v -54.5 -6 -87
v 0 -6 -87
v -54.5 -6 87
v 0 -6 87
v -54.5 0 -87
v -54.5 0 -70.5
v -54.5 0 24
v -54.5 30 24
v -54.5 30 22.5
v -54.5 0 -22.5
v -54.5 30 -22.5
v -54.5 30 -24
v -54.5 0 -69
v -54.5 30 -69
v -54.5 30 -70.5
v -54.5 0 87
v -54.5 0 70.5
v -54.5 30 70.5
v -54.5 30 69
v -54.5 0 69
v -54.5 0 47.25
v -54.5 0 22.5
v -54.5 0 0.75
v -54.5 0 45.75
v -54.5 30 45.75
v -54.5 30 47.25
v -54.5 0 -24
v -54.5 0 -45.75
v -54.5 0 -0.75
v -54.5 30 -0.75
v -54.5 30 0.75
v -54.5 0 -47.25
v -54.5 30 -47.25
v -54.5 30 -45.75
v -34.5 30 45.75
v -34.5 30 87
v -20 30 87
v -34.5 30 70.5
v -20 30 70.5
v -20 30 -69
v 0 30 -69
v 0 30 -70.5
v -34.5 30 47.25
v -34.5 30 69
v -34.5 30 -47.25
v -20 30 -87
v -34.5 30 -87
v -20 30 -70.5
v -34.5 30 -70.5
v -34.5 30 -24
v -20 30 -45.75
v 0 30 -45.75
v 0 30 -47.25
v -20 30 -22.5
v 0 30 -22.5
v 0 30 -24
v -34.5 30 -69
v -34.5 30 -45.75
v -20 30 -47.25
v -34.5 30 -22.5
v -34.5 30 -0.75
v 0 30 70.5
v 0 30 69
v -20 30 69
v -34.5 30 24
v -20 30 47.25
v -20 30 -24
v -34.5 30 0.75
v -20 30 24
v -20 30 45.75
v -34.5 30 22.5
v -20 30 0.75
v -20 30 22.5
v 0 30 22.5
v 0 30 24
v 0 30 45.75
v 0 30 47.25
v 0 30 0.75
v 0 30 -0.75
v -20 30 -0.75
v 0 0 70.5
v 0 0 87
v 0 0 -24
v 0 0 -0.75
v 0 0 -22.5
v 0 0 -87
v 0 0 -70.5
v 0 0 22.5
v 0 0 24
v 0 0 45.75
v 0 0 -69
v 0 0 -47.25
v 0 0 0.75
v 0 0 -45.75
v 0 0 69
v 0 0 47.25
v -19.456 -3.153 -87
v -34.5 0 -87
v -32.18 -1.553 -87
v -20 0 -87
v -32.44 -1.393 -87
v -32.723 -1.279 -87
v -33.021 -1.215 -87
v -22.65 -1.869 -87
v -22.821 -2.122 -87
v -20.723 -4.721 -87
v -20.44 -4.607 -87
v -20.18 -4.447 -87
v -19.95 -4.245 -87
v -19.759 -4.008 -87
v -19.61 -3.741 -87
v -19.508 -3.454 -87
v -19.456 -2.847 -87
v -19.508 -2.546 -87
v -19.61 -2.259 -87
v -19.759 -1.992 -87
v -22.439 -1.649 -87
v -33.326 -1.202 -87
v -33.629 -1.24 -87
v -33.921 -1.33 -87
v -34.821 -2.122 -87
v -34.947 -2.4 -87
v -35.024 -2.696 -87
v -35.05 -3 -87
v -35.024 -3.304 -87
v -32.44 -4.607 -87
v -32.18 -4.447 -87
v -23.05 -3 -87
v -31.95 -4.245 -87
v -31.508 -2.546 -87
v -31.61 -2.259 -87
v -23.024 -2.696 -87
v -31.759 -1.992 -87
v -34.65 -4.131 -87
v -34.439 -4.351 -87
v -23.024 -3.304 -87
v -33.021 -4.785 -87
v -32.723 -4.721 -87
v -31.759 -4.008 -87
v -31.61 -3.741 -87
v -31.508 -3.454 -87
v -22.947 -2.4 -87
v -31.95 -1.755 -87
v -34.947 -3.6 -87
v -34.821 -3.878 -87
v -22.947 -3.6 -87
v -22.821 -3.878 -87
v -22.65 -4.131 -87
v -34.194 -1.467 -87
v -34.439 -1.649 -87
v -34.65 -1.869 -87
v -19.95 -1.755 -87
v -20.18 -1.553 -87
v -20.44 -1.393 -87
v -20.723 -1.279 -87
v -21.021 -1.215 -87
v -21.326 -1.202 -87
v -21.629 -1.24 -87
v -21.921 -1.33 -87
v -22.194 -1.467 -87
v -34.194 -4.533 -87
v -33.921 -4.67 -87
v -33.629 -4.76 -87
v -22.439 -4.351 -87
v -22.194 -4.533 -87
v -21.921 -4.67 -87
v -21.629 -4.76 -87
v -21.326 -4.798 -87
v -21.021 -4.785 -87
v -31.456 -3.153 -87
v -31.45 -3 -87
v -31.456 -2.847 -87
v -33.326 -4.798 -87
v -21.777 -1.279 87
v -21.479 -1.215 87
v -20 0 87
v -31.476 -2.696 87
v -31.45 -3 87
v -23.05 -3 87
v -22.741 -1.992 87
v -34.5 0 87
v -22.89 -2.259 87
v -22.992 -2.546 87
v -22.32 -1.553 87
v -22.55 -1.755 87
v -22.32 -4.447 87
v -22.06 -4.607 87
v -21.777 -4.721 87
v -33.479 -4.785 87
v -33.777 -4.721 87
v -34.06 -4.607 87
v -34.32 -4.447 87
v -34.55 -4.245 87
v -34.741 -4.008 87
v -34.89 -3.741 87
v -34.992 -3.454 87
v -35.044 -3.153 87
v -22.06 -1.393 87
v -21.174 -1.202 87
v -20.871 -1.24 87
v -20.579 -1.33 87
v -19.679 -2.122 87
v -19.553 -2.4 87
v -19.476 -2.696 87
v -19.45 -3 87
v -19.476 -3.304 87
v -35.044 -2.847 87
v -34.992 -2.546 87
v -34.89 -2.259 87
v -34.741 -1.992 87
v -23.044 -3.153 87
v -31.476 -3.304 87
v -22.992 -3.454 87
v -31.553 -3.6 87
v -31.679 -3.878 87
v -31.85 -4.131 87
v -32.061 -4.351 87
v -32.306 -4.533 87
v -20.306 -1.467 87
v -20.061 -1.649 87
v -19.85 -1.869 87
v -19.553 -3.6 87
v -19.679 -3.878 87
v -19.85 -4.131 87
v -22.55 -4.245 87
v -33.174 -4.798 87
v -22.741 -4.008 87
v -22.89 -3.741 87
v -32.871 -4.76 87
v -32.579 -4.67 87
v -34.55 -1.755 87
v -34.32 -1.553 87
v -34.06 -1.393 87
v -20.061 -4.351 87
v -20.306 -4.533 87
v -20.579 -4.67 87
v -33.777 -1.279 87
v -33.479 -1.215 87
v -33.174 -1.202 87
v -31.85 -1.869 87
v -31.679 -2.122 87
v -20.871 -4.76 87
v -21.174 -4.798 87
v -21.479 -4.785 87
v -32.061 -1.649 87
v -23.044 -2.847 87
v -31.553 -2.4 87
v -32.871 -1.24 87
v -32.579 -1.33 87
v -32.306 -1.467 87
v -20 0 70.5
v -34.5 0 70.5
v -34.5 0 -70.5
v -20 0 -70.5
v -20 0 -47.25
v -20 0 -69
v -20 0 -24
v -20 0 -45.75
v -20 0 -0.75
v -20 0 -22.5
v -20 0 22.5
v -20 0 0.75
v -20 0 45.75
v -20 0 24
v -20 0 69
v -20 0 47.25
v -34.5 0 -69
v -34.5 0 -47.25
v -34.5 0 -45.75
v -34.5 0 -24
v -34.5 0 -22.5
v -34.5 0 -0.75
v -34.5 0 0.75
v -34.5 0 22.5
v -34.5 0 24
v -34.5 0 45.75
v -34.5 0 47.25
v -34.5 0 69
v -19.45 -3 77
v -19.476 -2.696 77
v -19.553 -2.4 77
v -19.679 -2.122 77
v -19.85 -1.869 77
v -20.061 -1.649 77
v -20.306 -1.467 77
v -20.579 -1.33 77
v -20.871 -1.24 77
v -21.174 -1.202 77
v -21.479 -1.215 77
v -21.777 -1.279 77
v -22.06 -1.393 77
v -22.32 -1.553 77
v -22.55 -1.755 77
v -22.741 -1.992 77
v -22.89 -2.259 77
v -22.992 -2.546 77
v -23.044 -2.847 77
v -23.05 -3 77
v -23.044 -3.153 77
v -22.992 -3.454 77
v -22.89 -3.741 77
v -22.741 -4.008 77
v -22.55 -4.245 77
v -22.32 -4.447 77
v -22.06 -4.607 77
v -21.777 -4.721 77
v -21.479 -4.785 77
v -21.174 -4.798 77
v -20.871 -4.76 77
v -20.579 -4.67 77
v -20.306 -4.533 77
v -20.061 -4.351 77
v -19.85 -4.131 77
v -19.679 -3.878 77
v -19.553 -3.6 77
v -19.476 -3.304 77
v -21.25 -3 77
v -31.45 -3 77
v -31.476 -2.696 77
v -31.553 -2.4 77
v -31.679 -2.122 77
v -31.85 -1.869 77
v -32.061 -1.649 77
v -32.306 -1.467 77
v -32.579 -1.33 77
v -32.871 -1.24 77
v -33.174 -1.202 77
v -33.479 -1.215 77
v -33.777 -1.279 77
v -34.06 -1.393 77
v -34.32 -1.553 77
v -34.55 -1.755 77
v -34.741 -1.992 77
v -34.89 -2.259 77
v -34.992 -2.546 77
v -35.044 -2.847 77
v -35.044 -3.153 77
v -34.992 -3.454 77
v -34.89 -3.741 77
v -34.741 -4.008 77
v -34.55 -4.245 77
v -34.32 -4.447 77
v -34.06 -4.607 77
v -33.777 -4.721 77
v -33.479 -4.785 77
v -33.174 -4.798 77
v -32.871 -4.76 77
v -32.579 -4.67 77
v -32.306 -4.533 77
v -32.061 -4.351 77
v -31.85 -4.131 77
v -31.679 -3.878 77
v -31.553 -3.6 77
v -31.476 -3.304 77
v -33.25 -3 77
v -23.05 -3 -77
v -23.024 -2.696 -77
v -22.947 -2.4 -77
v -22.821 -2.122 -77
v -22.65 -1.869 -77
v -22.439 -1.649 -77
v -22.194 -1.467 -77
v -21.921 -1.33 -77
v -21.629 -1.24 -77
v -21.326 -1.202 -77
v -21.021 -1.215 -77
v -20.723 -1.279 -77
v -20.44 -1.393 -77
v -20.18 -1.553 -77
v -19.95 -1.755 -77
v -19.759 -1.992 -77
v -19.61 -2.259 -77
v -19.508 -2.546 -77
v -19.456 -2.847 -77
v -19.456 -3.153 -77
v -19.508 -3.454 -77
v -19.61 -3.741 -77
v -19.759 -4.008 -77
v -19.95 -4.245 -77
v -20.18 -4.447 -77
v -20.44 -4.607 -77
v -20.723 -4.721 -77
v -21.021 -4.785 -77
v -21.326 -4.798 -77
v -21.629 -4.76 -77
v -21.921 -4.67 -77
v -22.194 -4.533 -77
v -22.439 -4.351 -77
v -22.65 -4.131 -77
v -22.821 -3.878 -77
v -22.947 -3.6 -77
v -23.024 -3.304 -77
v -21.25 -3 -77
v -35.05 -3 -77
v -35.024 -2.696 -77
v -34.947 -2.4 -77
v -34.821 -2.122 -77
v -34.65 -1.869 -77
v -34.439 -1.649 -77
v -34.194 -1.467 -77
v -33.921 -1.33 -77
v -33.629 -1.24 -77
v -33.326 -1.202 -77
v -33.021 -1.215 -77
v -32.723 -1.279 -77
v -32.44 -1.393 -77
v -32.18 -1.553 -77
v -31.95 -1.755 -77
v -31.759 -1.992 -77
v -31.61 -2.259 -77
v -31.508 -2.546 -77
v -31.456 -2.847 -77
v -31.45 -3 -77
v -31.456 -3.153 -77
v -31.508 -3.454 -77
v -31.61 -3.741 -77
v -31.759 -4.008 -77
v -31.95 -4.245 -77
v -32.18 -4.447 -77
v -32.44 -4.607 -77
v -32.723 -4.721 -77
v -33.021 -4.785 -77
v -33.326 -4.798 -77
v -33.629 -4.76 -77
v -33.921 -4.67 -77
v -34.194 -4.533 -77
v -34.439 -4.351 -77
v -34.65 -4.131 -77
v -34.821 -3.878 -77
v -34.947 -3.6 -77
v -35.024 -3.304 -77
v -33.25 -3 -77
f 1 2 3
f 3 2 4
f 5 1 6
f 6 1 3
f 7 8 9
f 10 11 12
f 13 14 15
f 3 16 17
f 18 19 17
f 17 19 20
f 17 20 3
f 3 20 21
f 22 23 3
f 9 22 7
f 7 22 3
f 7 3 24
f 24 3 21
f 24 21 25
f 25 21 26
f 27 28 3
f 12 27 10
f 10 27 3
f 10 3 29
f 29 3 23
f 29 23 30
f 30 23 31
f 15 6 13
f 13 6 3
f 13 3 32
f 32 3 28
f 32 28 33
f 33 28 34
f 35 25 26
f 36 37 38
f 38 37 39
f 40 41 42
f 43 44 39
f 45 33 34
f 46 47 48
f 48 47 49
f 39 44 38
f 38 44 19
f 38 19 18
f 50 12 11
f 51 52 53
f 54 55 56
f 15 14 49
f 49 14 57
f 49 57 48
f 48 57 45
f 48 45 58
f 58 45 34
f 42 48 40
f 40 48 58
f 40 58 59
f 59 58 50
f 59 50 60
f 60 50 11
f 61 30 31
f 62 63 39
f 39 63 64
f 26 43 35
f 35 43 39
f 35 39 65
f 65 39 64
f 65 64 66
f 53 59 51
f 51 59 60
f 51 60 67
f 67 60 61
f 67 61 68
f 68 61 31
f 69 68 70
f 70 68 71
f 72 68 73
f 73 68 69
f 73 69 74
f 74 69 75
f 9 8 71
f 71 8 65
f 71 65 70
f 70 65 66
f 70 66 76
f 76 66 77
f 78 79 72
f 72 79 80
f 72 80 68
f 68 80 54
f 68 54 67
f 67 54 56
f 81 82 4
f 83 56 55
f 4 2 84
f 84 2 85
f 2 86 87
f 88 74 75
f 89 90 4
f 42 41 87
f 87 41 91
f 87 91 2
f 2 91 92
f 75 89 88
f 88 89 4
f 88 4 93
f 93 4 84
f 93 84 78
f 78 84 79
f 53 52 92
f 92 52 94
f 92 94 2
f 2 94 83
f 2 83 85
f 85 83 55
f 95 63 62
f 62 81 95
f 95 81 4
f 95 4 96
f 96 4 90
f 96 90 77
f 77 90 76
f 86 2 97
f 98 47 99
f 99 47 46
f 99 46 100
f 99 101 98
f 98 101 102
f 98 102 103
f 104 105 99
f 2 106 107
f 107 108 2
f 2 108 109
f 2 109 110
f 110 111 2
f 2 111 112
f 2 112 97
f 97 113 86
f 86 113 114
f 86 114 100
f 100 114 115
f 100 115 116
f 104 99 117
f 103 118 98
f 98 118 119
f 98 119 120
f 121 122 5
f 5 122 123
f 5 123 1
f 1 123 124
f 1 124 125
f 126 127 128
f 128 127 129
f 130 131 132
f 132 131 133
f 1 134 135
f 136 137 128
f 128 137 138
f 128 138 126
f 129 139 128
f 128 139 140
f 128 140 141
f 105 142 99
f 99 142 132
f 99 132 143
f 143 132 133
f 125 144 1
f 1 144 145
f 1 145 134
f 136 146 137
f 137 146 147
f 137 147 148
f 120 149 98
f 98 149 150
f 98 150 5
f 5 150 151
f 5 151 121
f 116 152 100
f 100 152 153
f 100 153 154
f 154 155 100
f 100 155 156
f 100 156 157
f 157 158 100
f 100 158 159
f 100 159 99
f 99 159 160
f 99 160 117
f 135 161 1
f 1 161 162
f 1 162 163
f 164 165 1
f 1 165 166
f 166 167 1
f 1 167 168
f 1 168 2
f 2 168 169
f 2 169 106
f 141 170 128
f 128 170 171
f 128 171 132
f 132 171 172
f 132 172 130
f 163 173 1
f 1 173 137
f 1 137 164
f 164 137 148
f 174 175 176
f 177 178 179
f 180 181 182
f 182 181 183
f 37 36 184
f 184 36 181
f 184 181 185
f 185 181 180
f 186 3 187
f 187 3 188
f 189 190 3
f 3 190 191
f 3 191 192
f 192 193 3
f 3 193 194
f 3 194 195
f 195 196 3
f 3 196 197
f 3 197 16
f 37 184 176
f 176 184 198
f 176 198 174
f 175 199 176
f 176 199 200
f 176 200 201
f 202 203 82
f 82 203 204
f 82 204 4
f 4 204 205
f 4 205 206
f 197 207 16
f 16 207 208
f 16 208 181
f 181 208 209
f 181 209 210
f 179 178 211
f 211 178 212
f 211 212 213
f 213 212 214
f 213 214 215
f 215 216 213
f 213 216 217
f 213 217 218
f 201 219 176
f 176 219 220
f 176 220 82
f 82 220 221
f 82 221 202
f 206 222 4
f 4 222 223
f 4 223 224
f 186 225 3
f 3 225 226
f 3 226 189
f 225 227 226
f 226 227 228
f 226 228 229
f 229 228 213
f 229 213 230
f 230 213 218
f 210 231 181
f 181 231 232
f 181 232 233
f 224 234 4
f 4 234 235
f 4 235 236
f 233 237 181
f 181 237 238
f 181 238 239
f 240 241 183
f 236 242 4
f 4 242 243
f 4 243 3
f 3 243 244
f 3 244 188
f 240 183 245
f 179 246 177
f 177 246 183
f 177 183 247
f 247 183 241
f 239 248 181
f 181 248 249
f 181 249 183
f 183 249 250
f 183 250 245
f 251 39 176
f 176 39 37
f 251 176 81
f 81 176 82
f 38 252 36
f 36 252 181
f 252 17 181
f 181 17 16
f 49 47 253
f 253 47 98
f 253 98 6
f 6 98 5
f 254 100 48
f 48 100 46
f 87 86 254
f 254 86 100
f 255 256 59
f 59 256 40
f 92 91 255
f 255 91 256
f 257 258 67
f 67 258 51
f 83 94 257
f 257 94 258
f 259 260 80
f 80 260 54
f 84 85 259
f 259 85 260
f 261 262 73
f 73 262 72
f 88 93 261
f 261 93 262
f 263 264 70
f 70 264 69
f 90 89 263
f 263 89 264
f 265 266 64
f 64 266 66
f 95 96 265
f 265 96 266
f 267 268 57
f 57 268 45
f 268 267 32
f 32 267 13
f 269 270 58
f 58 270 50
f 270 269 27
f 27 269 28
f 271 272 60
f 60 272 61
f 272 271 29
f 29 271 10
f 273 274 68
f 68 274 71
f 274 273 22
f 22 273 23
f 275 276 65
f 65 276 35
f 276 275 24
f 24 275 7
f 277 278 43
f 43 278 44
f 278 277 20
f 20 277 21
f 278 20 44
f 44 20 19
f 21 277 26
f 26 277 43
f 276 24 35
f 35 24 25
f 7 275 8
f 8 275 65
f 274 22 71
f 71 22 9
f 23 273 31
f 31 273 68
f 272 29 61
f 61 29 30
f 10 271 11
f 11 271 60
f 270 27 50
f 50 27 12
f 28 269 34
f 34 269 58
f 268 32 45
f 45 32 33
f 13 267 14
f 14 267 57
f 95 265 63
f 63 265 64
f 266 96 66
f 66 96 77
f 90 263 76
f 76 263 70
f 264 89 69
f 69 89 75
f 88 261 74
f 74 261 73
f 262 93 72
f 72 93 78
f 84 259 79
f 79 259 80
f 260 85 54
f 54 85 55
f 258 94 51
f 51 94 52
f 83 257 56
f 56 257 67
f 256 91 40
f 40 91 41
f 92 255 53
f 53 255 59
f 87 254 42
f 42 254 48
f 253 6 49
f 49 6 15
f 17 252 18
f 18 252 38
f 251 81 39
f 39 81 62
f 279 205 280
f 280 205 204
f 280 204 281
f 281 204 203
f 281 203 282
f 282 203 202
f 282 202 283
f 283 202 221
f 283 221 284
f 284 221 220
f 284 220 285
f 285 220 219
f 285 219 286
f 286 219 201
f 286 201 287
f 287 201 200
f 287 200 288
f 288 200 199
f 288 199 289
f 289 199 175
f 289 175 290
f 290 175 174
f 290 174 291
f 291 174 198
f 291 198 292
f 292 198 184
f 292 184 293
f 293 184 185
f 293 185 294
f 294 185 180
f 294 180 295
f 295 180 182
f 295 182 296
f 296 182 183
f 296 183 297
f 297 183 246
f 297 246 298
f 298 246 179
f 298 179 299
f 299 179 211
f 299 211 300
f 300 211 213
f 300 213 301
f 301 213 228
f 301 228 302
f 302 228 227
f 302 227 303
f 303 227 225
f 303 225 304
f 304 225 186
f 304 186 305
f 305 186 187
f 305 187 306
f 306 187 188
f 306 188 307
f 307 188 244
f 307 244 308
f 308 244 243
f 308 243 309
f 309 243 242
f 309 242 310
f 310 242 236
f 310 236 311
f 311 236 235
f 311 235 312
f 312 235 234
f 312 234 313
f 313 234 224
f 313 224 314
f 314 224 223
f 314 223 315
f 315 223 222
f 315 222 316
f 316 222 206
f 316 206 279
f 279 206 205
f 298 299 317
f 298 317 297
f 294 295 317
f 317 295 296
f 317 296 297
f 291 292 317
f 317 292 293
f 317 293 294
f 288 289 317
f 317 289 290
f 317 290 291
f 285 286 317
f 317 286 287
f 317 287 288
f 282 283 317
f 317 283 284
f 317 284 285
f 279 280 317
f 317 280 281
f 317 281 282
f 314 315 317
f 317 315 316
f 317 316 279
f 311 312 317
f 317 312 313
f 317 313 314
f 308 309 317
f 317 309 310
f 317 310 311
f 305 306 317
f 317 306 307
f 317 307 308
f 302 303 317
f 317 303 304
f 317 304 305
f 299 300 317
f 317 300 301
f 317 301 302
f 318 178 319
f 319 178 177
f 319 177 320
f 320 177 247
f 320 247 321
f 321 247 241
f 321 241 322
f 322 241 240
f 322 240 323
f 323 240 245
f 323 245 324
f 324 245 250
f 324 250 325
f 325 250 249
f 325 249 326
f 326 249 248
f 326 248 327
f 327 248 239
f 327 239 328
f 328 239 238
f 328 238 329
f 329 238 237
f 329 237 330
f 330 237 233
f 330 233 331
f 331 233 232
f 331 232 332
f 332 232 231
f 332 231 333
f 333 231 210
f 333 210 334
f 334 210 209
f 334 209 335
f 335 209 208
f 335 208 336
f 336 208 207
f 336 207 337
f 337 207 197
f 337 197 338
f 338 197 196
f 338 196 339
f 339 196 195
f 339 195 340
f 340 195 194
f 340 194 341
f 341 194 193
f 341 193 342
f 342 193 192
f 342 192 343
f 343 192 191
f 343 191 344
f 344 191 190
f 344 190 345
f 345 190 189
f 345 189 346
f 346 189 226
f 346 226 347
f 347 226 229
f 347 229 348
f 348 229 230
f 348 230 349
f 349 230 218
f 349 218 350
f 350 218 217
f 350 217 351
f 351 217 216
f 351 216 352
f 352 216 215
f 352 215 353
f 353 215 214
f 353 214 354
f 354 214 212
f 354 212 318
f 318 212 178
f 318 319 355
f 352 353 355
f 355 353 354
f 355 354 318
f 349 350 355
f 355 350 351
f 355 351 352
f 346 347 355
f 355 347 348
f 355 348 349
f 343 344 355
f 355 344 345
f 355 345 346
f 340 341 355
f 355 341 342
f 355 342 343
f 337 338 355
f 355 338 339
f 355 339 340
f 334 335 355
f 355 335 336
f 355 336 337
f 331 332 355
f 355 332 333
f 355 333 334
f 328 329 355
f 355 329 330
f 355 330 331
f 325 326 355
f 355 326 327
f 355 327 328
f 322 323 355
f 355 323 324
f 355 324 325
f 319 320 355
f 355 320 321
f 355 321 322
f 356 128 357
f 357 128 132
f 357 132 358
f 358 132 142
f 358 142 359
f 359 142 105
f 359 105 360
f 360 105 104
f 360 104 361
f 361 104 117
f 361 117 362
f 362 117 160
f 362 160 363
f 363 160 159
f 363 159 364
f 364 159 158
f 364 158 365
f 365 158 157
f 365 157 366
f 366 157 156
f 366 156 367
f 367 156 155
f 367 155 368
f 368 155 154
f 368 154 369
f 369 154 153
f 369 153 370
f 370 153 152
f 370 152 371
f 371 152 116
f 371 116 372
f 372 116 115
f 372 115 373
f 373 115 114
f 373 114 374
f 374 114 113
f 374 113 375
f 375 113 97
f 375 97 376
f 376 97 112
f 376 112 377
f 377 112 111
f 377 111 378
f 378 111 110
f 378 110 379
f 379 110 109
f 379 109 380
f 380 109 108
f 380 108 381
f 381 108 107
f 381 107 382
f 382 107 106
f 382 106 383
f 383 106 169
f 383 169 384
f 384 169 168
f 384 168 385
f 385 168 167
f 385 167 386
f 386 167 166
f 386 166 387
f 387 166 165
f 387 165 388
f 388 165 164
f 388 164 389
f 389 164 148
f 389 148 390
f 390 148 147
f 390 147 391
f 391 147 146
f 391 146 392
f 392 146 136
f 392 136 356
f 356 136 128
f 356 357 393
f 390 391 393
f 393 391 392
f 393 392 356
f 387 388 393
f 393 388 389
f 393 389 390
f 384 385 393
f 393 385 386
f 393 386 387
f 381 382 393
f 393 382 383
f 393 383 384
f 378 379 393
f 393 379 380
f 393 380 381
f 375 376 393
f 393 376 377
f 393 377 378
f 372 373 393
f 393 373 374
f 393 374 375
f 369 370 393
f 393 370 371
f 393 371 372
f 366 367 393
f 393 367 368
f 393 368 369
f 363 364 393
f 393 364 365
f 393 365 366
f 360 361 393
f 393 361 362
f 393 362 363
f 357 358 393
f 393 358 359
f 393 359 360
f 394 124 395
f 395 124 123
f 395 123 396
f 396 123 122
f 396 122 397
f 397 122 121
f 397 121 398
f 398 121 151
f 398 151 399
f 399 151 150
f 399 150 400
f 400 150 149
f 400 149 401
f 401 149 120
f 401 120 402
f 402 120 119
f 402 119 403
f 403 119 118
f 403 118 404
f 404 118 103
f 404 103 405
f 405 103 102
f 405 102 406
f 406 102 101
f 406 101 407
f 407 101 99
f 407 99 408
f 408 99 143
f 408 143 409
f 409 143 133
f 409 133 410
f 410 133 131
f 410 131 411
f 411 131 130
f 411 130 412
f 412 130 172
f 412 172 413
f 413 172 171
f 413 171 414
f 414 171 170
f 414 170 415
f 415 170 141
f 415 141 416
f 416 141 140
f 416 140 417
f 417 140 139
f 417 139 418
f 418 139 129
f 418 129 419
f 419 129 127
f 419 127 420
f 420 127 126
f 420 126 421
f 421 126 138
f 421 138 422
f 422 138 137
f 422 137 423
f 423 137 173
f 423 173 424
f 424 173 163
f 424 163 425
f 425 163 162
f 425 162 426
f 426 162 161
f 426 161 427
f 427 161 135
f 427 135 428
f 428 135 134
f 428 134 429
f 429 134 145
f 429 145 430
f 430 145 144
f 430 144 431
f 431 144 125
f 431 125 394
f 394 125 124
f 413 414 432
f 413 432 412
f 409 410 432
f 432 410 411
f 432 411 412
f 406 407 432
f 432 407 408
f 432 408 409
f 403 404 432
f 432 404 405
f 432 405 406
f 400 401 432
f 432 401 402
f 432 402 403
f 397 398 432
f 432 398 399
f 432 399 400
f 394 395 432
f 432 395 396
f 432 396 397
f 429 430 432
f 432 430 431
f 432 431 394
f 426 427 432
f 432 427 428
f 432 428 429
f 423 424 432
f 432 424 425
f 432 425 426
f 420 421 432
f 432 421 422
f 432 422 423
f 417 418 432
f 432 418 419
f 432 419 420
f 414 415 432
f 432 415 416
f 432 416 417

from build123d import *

# Parameters (mm, degrees)
LEG_DEPTH               = 87
SKETCH5_W               = 20
SKETCH5_H               = 21.25
CELL_SLOTS_DEPTH        = 30
SKETCH6_W               = 20
SKETCH6_H               = 0.25
CELL_SLOTS_TRIM_DEPTH   = 30
SKETCH7_R               = 1.8
SCREW_HOLES_FRONT_DEPTH = 10


with BuildPart() as part:
    # Sketch1 → Leg (new, symmetric)
    with BuildSketch(Plane.XY):
        Polygon((0, -6), (0, 0), (0, 30), (-54.5, 30), (-54.5, -6), align=None)
    extrude(amount=LEG_DEPTH, both=True)

    # Sketch5 → Cell Slots (cut)
    with BuildSketch(Plane(origin=(0, 30, 0), x_dir=(1, 0, 0), z_dir=(0, 1, 0))):
        with Locations((-10, -81.375)):
            Rectangle(SKETCH5_W, SKETCH5_H)
        with Locations((-10, -58.125)):
            Rectangle(SKETCH5_W, SKETCH5_H)
        with Locations((-10, -34.875)):
            Rectangle(SKETCH5_W, SKETCH5_H)
        with Locations((-10, -11.625)):
            Rectangle(SKETCH5_W, SKETCH5_H)
        with Locations((-10, 11.625)):
            Rectangle(SKETCH5_W, SKETCH5_H)
        with Locations((-10, 34.875)):
            Rectangle(SKETCH5_W, SKETCH5_H)
        with Locations((-10, 58.125)):
            Rectangle(SKETCH5_W, SKETCH5_H)
        with Locations((-10, 81.375)):
            Rectangle(SKETCH5_W, SKETCH5_H)
        with Locations((-44.5, -81.375)):
            Rectangle(SKETCH5_W, SKETCH5_H)
        with Locations((-44.5, -58.125)):
            Rectangle(SKETCH5_W, SKETCH5_H)
        with Locations((-44.5, -34.875)):
            Rectangle(SKETCH5_W, SKETCH5_H)
        with Locations((-44.5, -11.625)):
            Rectangle(SKETCH5_W, SKETCH5_H)
        with Locations((-44.5, 11.625)):
            Rectangle(SKETCH5_W, SKETCH5_H)
        with Locations((-44.5, 34.875)):
            Rectangle(SKETCH5_W, SKETCH5_H)
        with Locations((-44.5, 58.125)):
            Rectangle(SKETCH5_W, SKETCH5_H)
        with Locations((-44.5, 81.375)):
            Rectangle(SKETCH5_W, SKETCH5_H)
    extrude(amount=-CELL_SLOTS_DEPTH, mode=Mode.SUBTRACT)

    # Sketch6 → Cell Slots Trim (cut)
    with BuildSketch(Plane(origin=(0, 30, 0), x_dir=(1, 0, 0), z_dir=(0, 1, 0))):
        with Locations((-10, -70.625)):
            Rectangle(SKETCH6_W, SKETCH6_H)
        with Locations((-10, -68.875)):
            Rectangle(SKETCH6_W, SKETCH6_H)
        with Locations((-10, -47.375)):
            Rectangle(SKETCH6_W, SKETCH6_H)
        with Locations((-10, -45.625)):
            Rectangle(SKETCH6_W, SKETCH6_H)
        with Locations((-10, -24.125)):
            Rectangle(SKETCH6_W, SKETCH6_H)
        with Locations((-10, -22.375)):
            Rectangle(SKETCH6_W, SKETCH6_H)
        with Locations((-10, -0.875)):
            Rectangle(SKETCH6_W, SKETCH6_H)
        with Locations((-10, 0.875)):
            Rectangle(SKETCH6_W, SKETCH6_H)
        with Locations((-10, 22.375)):
            Rectangle(SKETCH6_W, SKETCH6_H)
        with Locations((-10, 24.125)):
            Rectangle(SKETCH6_W, SKETCH6_H)
        with Locations((-10, 45.625)):
            Rectangle(SKETCH6_W, SKETCH6_H)
        with Locations((-10, 47.375)):
            Rectangle(SKETCH6_W, SKETCH6_H)
        with Locations((-10, 68.875)):
            Rectangle(SKETCH6_W, SKETCH6_H)
        with Locations((-10, 70.625)):
            Rectangle(SKETCH6_W, SKETCH6_H)
        with Locations((-44.5, 70.625)):
            Rectangle(SKETCH6_W, SKETCH6_H)
        with Locations((-44.5, 68.875)):
            Rectangle(SKETCH6_W, SKETCH6_H)
        with Locations((-44.5, 47.375)):
            Rectangle(SKETCH6_W, SKETCH6_H)
        with Locations((-44.5, 45.625)):
            Rectangle(SKETCH6_W, SKETCH6_H)
        with Locations((-44.5, 24.125)):
            Rectangle(SKETCH6_W, SKETCH6_H)
        with Locations((-44.5, 22.375)):
            Rectangle(SKETCH6_W, SKETCH6_H)
        with Locations((-44.5, 0.875)):
            Rectangle(SKETCH6_W, SKETCH6_H)
        with Locations((-44.5, -0.875)):
            Rectangle(SKETCH6_W, SKETCH6_H)
        with Locations((-44.5, -22.375)):
            Rectangle(SKETCH6_W, SKETCH6_H)
        with Locations((-44.5, -24.125)):
            Rectangle(SKETCH6_W, SKETCH6_H)
        with Locations((-44.5, -45.625)):
            Rectangle(SKETCH6_W, SKETCH6_H)
        with Locations((-44.5, -47.375)):
            Rectangle(SKETCH6_W, SKETCH6_H)
        with Locations((-44.5, -68.875)):
            Rectangle(SKETCH6_W, SKETCH6_H)
        with Locations((-44.5, -70.625)):
            Rectangle(SKETCH6_W, SKETCH6_H)
    extrude(amount=-CELL_SLOTS_TRIM_DEPTH, mode=Mode.SUBTRACT)

    # Sketch7 → Screw Holes Front (cut)
    with BuildSketch(Plane.XY.offset(87)):
        with Locations((-33.25, -3)):
            Circle(SKETCH7_R)
        with Locations((-21.25, -3)):
            Circle(SKETCH7_R)
    screw_holes_front = extrude(amount=-SCREW_HOLES_FRONT_DEPTH, mode=Mode.SUBTRACT)

    # Screw Holes Back: Screw Holes Front across plane
    add(screw_holes_front.mirror(Plane(origin=(0, 0, 0), x_dir=(1, 0, 0), z_dir=(0, 0, -1))), mode=Mode.SUBTRACT)


solid = part.part
